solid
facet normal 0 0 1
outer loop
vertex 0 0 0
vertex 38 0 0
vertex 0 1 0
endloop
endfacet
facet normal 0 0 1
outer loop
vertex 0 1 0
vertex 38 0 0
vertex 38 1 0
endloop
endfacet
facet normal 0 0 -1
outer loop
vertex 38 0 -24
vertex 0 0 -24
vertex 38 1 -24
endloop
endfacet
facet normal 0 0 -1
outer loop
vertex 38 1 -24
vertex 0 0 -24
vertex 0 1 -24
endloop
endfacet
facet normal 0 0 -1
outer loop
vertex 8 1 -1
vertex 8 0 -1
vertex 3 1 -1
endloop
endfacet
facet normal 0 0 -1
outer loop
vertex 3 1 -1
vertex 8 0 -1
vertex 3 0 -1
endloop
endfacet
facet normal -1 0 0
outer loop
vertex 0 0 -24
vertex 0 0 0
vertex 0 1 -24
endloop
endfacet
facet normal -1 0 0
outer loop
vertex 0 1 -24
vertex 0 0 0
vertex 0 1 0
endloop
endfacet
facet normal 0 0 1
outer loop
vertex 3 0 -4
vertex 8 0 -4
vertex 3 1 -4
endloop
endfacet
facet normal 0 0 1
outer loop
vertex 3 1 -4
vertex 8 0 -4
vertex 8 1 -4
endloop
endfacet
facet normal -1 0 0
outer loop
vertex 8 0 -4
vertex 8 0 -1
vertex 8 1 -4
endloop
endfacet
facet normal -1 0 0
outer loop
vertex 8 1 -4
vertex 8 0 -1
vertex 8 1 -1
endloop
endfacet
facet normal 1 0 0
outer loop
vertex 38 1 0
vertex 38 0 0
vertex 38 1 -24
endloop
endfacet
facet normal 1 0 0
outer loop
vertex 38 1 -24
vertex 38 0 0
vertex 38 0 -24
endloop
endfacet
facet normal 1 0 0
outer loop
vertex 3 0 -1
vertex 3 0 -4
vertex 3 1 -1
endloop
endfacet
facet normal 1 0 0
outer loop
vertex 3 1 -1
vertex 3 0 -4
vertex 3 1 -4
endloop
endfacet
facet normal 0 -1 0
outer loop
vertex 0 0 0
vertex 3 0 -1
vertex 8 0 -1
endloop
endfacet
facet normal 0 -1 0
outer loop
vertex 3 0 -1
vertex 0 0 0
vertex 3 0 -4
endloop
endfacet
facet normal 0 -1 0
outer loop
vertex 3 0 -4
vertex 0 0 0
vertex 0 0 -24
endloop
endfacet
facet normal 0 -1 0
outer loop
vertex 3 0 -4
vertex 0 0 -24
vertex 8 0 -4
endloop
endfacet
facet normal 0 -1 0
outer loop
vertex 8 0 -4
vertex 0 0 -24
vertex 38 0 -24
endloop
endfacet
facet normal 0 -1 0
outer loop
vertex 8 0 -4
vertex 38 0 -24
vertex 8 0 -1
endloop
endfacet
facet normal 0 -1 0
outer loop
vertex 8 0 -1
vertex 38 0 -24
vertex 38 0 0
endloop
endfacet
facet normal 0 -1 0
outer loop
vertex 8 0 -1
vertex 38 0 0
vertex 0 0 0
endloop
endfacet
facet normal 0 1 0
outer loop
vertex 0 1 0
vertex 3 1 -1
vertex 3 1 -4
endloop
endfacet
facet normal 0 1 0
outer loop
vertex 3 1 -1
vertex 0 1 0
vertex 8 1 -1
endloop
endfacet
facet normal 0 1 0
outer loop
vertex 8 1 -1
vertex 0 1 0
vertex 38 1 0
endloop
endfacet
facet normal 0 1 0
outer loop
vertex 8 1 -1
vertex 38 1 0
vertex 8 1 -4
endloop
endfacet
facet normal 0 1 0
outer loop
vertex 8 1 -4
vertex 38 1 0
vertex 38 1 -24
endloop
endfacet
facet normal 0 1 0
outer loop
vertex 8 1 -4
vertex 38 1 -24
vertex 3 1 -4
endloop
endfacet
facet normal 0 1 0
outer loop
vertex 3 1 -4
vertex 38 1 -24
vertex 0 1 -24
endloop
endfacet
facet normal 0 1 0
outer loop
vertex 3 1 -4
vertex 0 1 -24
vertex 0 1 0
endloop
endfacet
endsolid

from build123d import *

# Parameters (mm, degrees)
SKETCH1_W           = 40
SKETCH1_H           = 24
BOSS_EXTRUDE1_DEPTH = 2
SKETCH2_W           = 40
SKETCH2_H           = 24
SKETCH2_W_2         = 36
SKETCH2_H_2         = 22
BOSS_EXTRUDE3_DEPTH = 8
SKETCH5_W           = 4
SKETCH5_H           = 3
CUT_EXTRUDE1_DEPTH  = 2
SKETCH6_W           = 24
SKETCH6_H           = 10
CUT_EXTRUDE2_DEPTH  = 2
SKETCH7_W           = 22
SKETCH7_H           = 8
CUT_EXTRUDE3_DEPTH  = 2
SKETCH8_W           = 1
SKETCH8_H           = 3
CUT_EXTRUDE4_DEPTH  = 2
SKETCH9_W           = 38
SKETCH9_H           = 24
CUT_EXTRUDE5_DEPTH  = 9


with BuildPart() as part:
    # Sketch1 → Boss-Extrude1 (new body)
    with BuildSketch(Plane(origin=(0, 0, 0), x_dir=(1, 0, 0), z_dir=(0, 1, 0))):
        with Locations((20, 12)):
            Rectangle(SKETCH1_W, SKETCH1_H)
    extrude(amount=BOSS_EXTRUDE1_DEPTH)

    # Sketch2 → Boss-Extrude3 (add)
    with BuildSketch(Plane(origin=(0, 2, 0), x_dir=(1, 0, 0), z_dir=(0, 1, 0))):
        with Locations((20, 12)):
            Rectangle(SKETCH2_W, SKETCH2_H)
        with Locations((21, 12)):
            Rectangle(SKETCH2_W_2, SKETCH2_H_2, mode=Mode.SUBTRACT)
    extrude(amount=BOSS_EXTRUDE3_DEPTH)

    # Sketch5 → Cut-Extrude1 (cut)
    with BuildSketch(Plane(origin=(0, 2, 0), x_dir=(1, 0, 0), z_dir=(0, 1, 0))):
        with Locations((6, 2.5)):
            Rectangle(SKETCH5_W, SKETCH5_H)
    extrude(amount=-CUT_EXTRUDE1_DEPTH, mode=Mode.SUBTRACT)

    # Sketch6 → Cut-Extrude2 (cut)
    with BuildSketch(Plane(origin=(40, 0, 0), x_dir=(0, 0, -1), z_dir=(1, 0, 0))):
        with Locations((12, 5)):
            Rectangle(SKETCH6_W, SKETCH6_H)
    extrude(amount=-CUT_EXTRUDE2_DEPTH, mode=Mode.SUBTRACT)

    # Sketch7 → Cut-Extrude3 (cut)
    with BuildSketch(Plane(origin=(3, 0, 0), x_dir=(0, 0, -1), z_dir=(1, 0, 0))):
        with Locations((12, 6)):
            Rectangle(SKETCH7_W, SKETCH7_H)
    extrude(amount=-CUT_EXTRUDE3_DEPTH, mode=Mode.SUBTRACT)

    # Sketch8 → Cut-Extrude4 (cut)
    with BuildSketch(Plane(origin=(0, 2, 0), x_dir=(1, 0, 0), z_dir=(0, 1, 0))):
        with Locations((3.5, 2.5)):
            Rectangle(SKETCH8_W, SKETCH8_H)
    extrude(amount=-CUT_EXTRUDE4_DEPTH, mode=Mode.SUBTRACT)

    # Sketch9 → Cut-Extrude5 (cut)
    with BuildSketch(Plane(origin=(0, 10, 0), x_dir=(1, 0, 0), z_dir=(0, 1, 0))):
        with Locations((19, 12)):
            Rectangle(SKETCH9_W, SKETCH9_H)
    extrude(amount=-CUT_EXTRUDE5_DEPTH, mode=Mode.SUBTRACT)


solid = part.part
